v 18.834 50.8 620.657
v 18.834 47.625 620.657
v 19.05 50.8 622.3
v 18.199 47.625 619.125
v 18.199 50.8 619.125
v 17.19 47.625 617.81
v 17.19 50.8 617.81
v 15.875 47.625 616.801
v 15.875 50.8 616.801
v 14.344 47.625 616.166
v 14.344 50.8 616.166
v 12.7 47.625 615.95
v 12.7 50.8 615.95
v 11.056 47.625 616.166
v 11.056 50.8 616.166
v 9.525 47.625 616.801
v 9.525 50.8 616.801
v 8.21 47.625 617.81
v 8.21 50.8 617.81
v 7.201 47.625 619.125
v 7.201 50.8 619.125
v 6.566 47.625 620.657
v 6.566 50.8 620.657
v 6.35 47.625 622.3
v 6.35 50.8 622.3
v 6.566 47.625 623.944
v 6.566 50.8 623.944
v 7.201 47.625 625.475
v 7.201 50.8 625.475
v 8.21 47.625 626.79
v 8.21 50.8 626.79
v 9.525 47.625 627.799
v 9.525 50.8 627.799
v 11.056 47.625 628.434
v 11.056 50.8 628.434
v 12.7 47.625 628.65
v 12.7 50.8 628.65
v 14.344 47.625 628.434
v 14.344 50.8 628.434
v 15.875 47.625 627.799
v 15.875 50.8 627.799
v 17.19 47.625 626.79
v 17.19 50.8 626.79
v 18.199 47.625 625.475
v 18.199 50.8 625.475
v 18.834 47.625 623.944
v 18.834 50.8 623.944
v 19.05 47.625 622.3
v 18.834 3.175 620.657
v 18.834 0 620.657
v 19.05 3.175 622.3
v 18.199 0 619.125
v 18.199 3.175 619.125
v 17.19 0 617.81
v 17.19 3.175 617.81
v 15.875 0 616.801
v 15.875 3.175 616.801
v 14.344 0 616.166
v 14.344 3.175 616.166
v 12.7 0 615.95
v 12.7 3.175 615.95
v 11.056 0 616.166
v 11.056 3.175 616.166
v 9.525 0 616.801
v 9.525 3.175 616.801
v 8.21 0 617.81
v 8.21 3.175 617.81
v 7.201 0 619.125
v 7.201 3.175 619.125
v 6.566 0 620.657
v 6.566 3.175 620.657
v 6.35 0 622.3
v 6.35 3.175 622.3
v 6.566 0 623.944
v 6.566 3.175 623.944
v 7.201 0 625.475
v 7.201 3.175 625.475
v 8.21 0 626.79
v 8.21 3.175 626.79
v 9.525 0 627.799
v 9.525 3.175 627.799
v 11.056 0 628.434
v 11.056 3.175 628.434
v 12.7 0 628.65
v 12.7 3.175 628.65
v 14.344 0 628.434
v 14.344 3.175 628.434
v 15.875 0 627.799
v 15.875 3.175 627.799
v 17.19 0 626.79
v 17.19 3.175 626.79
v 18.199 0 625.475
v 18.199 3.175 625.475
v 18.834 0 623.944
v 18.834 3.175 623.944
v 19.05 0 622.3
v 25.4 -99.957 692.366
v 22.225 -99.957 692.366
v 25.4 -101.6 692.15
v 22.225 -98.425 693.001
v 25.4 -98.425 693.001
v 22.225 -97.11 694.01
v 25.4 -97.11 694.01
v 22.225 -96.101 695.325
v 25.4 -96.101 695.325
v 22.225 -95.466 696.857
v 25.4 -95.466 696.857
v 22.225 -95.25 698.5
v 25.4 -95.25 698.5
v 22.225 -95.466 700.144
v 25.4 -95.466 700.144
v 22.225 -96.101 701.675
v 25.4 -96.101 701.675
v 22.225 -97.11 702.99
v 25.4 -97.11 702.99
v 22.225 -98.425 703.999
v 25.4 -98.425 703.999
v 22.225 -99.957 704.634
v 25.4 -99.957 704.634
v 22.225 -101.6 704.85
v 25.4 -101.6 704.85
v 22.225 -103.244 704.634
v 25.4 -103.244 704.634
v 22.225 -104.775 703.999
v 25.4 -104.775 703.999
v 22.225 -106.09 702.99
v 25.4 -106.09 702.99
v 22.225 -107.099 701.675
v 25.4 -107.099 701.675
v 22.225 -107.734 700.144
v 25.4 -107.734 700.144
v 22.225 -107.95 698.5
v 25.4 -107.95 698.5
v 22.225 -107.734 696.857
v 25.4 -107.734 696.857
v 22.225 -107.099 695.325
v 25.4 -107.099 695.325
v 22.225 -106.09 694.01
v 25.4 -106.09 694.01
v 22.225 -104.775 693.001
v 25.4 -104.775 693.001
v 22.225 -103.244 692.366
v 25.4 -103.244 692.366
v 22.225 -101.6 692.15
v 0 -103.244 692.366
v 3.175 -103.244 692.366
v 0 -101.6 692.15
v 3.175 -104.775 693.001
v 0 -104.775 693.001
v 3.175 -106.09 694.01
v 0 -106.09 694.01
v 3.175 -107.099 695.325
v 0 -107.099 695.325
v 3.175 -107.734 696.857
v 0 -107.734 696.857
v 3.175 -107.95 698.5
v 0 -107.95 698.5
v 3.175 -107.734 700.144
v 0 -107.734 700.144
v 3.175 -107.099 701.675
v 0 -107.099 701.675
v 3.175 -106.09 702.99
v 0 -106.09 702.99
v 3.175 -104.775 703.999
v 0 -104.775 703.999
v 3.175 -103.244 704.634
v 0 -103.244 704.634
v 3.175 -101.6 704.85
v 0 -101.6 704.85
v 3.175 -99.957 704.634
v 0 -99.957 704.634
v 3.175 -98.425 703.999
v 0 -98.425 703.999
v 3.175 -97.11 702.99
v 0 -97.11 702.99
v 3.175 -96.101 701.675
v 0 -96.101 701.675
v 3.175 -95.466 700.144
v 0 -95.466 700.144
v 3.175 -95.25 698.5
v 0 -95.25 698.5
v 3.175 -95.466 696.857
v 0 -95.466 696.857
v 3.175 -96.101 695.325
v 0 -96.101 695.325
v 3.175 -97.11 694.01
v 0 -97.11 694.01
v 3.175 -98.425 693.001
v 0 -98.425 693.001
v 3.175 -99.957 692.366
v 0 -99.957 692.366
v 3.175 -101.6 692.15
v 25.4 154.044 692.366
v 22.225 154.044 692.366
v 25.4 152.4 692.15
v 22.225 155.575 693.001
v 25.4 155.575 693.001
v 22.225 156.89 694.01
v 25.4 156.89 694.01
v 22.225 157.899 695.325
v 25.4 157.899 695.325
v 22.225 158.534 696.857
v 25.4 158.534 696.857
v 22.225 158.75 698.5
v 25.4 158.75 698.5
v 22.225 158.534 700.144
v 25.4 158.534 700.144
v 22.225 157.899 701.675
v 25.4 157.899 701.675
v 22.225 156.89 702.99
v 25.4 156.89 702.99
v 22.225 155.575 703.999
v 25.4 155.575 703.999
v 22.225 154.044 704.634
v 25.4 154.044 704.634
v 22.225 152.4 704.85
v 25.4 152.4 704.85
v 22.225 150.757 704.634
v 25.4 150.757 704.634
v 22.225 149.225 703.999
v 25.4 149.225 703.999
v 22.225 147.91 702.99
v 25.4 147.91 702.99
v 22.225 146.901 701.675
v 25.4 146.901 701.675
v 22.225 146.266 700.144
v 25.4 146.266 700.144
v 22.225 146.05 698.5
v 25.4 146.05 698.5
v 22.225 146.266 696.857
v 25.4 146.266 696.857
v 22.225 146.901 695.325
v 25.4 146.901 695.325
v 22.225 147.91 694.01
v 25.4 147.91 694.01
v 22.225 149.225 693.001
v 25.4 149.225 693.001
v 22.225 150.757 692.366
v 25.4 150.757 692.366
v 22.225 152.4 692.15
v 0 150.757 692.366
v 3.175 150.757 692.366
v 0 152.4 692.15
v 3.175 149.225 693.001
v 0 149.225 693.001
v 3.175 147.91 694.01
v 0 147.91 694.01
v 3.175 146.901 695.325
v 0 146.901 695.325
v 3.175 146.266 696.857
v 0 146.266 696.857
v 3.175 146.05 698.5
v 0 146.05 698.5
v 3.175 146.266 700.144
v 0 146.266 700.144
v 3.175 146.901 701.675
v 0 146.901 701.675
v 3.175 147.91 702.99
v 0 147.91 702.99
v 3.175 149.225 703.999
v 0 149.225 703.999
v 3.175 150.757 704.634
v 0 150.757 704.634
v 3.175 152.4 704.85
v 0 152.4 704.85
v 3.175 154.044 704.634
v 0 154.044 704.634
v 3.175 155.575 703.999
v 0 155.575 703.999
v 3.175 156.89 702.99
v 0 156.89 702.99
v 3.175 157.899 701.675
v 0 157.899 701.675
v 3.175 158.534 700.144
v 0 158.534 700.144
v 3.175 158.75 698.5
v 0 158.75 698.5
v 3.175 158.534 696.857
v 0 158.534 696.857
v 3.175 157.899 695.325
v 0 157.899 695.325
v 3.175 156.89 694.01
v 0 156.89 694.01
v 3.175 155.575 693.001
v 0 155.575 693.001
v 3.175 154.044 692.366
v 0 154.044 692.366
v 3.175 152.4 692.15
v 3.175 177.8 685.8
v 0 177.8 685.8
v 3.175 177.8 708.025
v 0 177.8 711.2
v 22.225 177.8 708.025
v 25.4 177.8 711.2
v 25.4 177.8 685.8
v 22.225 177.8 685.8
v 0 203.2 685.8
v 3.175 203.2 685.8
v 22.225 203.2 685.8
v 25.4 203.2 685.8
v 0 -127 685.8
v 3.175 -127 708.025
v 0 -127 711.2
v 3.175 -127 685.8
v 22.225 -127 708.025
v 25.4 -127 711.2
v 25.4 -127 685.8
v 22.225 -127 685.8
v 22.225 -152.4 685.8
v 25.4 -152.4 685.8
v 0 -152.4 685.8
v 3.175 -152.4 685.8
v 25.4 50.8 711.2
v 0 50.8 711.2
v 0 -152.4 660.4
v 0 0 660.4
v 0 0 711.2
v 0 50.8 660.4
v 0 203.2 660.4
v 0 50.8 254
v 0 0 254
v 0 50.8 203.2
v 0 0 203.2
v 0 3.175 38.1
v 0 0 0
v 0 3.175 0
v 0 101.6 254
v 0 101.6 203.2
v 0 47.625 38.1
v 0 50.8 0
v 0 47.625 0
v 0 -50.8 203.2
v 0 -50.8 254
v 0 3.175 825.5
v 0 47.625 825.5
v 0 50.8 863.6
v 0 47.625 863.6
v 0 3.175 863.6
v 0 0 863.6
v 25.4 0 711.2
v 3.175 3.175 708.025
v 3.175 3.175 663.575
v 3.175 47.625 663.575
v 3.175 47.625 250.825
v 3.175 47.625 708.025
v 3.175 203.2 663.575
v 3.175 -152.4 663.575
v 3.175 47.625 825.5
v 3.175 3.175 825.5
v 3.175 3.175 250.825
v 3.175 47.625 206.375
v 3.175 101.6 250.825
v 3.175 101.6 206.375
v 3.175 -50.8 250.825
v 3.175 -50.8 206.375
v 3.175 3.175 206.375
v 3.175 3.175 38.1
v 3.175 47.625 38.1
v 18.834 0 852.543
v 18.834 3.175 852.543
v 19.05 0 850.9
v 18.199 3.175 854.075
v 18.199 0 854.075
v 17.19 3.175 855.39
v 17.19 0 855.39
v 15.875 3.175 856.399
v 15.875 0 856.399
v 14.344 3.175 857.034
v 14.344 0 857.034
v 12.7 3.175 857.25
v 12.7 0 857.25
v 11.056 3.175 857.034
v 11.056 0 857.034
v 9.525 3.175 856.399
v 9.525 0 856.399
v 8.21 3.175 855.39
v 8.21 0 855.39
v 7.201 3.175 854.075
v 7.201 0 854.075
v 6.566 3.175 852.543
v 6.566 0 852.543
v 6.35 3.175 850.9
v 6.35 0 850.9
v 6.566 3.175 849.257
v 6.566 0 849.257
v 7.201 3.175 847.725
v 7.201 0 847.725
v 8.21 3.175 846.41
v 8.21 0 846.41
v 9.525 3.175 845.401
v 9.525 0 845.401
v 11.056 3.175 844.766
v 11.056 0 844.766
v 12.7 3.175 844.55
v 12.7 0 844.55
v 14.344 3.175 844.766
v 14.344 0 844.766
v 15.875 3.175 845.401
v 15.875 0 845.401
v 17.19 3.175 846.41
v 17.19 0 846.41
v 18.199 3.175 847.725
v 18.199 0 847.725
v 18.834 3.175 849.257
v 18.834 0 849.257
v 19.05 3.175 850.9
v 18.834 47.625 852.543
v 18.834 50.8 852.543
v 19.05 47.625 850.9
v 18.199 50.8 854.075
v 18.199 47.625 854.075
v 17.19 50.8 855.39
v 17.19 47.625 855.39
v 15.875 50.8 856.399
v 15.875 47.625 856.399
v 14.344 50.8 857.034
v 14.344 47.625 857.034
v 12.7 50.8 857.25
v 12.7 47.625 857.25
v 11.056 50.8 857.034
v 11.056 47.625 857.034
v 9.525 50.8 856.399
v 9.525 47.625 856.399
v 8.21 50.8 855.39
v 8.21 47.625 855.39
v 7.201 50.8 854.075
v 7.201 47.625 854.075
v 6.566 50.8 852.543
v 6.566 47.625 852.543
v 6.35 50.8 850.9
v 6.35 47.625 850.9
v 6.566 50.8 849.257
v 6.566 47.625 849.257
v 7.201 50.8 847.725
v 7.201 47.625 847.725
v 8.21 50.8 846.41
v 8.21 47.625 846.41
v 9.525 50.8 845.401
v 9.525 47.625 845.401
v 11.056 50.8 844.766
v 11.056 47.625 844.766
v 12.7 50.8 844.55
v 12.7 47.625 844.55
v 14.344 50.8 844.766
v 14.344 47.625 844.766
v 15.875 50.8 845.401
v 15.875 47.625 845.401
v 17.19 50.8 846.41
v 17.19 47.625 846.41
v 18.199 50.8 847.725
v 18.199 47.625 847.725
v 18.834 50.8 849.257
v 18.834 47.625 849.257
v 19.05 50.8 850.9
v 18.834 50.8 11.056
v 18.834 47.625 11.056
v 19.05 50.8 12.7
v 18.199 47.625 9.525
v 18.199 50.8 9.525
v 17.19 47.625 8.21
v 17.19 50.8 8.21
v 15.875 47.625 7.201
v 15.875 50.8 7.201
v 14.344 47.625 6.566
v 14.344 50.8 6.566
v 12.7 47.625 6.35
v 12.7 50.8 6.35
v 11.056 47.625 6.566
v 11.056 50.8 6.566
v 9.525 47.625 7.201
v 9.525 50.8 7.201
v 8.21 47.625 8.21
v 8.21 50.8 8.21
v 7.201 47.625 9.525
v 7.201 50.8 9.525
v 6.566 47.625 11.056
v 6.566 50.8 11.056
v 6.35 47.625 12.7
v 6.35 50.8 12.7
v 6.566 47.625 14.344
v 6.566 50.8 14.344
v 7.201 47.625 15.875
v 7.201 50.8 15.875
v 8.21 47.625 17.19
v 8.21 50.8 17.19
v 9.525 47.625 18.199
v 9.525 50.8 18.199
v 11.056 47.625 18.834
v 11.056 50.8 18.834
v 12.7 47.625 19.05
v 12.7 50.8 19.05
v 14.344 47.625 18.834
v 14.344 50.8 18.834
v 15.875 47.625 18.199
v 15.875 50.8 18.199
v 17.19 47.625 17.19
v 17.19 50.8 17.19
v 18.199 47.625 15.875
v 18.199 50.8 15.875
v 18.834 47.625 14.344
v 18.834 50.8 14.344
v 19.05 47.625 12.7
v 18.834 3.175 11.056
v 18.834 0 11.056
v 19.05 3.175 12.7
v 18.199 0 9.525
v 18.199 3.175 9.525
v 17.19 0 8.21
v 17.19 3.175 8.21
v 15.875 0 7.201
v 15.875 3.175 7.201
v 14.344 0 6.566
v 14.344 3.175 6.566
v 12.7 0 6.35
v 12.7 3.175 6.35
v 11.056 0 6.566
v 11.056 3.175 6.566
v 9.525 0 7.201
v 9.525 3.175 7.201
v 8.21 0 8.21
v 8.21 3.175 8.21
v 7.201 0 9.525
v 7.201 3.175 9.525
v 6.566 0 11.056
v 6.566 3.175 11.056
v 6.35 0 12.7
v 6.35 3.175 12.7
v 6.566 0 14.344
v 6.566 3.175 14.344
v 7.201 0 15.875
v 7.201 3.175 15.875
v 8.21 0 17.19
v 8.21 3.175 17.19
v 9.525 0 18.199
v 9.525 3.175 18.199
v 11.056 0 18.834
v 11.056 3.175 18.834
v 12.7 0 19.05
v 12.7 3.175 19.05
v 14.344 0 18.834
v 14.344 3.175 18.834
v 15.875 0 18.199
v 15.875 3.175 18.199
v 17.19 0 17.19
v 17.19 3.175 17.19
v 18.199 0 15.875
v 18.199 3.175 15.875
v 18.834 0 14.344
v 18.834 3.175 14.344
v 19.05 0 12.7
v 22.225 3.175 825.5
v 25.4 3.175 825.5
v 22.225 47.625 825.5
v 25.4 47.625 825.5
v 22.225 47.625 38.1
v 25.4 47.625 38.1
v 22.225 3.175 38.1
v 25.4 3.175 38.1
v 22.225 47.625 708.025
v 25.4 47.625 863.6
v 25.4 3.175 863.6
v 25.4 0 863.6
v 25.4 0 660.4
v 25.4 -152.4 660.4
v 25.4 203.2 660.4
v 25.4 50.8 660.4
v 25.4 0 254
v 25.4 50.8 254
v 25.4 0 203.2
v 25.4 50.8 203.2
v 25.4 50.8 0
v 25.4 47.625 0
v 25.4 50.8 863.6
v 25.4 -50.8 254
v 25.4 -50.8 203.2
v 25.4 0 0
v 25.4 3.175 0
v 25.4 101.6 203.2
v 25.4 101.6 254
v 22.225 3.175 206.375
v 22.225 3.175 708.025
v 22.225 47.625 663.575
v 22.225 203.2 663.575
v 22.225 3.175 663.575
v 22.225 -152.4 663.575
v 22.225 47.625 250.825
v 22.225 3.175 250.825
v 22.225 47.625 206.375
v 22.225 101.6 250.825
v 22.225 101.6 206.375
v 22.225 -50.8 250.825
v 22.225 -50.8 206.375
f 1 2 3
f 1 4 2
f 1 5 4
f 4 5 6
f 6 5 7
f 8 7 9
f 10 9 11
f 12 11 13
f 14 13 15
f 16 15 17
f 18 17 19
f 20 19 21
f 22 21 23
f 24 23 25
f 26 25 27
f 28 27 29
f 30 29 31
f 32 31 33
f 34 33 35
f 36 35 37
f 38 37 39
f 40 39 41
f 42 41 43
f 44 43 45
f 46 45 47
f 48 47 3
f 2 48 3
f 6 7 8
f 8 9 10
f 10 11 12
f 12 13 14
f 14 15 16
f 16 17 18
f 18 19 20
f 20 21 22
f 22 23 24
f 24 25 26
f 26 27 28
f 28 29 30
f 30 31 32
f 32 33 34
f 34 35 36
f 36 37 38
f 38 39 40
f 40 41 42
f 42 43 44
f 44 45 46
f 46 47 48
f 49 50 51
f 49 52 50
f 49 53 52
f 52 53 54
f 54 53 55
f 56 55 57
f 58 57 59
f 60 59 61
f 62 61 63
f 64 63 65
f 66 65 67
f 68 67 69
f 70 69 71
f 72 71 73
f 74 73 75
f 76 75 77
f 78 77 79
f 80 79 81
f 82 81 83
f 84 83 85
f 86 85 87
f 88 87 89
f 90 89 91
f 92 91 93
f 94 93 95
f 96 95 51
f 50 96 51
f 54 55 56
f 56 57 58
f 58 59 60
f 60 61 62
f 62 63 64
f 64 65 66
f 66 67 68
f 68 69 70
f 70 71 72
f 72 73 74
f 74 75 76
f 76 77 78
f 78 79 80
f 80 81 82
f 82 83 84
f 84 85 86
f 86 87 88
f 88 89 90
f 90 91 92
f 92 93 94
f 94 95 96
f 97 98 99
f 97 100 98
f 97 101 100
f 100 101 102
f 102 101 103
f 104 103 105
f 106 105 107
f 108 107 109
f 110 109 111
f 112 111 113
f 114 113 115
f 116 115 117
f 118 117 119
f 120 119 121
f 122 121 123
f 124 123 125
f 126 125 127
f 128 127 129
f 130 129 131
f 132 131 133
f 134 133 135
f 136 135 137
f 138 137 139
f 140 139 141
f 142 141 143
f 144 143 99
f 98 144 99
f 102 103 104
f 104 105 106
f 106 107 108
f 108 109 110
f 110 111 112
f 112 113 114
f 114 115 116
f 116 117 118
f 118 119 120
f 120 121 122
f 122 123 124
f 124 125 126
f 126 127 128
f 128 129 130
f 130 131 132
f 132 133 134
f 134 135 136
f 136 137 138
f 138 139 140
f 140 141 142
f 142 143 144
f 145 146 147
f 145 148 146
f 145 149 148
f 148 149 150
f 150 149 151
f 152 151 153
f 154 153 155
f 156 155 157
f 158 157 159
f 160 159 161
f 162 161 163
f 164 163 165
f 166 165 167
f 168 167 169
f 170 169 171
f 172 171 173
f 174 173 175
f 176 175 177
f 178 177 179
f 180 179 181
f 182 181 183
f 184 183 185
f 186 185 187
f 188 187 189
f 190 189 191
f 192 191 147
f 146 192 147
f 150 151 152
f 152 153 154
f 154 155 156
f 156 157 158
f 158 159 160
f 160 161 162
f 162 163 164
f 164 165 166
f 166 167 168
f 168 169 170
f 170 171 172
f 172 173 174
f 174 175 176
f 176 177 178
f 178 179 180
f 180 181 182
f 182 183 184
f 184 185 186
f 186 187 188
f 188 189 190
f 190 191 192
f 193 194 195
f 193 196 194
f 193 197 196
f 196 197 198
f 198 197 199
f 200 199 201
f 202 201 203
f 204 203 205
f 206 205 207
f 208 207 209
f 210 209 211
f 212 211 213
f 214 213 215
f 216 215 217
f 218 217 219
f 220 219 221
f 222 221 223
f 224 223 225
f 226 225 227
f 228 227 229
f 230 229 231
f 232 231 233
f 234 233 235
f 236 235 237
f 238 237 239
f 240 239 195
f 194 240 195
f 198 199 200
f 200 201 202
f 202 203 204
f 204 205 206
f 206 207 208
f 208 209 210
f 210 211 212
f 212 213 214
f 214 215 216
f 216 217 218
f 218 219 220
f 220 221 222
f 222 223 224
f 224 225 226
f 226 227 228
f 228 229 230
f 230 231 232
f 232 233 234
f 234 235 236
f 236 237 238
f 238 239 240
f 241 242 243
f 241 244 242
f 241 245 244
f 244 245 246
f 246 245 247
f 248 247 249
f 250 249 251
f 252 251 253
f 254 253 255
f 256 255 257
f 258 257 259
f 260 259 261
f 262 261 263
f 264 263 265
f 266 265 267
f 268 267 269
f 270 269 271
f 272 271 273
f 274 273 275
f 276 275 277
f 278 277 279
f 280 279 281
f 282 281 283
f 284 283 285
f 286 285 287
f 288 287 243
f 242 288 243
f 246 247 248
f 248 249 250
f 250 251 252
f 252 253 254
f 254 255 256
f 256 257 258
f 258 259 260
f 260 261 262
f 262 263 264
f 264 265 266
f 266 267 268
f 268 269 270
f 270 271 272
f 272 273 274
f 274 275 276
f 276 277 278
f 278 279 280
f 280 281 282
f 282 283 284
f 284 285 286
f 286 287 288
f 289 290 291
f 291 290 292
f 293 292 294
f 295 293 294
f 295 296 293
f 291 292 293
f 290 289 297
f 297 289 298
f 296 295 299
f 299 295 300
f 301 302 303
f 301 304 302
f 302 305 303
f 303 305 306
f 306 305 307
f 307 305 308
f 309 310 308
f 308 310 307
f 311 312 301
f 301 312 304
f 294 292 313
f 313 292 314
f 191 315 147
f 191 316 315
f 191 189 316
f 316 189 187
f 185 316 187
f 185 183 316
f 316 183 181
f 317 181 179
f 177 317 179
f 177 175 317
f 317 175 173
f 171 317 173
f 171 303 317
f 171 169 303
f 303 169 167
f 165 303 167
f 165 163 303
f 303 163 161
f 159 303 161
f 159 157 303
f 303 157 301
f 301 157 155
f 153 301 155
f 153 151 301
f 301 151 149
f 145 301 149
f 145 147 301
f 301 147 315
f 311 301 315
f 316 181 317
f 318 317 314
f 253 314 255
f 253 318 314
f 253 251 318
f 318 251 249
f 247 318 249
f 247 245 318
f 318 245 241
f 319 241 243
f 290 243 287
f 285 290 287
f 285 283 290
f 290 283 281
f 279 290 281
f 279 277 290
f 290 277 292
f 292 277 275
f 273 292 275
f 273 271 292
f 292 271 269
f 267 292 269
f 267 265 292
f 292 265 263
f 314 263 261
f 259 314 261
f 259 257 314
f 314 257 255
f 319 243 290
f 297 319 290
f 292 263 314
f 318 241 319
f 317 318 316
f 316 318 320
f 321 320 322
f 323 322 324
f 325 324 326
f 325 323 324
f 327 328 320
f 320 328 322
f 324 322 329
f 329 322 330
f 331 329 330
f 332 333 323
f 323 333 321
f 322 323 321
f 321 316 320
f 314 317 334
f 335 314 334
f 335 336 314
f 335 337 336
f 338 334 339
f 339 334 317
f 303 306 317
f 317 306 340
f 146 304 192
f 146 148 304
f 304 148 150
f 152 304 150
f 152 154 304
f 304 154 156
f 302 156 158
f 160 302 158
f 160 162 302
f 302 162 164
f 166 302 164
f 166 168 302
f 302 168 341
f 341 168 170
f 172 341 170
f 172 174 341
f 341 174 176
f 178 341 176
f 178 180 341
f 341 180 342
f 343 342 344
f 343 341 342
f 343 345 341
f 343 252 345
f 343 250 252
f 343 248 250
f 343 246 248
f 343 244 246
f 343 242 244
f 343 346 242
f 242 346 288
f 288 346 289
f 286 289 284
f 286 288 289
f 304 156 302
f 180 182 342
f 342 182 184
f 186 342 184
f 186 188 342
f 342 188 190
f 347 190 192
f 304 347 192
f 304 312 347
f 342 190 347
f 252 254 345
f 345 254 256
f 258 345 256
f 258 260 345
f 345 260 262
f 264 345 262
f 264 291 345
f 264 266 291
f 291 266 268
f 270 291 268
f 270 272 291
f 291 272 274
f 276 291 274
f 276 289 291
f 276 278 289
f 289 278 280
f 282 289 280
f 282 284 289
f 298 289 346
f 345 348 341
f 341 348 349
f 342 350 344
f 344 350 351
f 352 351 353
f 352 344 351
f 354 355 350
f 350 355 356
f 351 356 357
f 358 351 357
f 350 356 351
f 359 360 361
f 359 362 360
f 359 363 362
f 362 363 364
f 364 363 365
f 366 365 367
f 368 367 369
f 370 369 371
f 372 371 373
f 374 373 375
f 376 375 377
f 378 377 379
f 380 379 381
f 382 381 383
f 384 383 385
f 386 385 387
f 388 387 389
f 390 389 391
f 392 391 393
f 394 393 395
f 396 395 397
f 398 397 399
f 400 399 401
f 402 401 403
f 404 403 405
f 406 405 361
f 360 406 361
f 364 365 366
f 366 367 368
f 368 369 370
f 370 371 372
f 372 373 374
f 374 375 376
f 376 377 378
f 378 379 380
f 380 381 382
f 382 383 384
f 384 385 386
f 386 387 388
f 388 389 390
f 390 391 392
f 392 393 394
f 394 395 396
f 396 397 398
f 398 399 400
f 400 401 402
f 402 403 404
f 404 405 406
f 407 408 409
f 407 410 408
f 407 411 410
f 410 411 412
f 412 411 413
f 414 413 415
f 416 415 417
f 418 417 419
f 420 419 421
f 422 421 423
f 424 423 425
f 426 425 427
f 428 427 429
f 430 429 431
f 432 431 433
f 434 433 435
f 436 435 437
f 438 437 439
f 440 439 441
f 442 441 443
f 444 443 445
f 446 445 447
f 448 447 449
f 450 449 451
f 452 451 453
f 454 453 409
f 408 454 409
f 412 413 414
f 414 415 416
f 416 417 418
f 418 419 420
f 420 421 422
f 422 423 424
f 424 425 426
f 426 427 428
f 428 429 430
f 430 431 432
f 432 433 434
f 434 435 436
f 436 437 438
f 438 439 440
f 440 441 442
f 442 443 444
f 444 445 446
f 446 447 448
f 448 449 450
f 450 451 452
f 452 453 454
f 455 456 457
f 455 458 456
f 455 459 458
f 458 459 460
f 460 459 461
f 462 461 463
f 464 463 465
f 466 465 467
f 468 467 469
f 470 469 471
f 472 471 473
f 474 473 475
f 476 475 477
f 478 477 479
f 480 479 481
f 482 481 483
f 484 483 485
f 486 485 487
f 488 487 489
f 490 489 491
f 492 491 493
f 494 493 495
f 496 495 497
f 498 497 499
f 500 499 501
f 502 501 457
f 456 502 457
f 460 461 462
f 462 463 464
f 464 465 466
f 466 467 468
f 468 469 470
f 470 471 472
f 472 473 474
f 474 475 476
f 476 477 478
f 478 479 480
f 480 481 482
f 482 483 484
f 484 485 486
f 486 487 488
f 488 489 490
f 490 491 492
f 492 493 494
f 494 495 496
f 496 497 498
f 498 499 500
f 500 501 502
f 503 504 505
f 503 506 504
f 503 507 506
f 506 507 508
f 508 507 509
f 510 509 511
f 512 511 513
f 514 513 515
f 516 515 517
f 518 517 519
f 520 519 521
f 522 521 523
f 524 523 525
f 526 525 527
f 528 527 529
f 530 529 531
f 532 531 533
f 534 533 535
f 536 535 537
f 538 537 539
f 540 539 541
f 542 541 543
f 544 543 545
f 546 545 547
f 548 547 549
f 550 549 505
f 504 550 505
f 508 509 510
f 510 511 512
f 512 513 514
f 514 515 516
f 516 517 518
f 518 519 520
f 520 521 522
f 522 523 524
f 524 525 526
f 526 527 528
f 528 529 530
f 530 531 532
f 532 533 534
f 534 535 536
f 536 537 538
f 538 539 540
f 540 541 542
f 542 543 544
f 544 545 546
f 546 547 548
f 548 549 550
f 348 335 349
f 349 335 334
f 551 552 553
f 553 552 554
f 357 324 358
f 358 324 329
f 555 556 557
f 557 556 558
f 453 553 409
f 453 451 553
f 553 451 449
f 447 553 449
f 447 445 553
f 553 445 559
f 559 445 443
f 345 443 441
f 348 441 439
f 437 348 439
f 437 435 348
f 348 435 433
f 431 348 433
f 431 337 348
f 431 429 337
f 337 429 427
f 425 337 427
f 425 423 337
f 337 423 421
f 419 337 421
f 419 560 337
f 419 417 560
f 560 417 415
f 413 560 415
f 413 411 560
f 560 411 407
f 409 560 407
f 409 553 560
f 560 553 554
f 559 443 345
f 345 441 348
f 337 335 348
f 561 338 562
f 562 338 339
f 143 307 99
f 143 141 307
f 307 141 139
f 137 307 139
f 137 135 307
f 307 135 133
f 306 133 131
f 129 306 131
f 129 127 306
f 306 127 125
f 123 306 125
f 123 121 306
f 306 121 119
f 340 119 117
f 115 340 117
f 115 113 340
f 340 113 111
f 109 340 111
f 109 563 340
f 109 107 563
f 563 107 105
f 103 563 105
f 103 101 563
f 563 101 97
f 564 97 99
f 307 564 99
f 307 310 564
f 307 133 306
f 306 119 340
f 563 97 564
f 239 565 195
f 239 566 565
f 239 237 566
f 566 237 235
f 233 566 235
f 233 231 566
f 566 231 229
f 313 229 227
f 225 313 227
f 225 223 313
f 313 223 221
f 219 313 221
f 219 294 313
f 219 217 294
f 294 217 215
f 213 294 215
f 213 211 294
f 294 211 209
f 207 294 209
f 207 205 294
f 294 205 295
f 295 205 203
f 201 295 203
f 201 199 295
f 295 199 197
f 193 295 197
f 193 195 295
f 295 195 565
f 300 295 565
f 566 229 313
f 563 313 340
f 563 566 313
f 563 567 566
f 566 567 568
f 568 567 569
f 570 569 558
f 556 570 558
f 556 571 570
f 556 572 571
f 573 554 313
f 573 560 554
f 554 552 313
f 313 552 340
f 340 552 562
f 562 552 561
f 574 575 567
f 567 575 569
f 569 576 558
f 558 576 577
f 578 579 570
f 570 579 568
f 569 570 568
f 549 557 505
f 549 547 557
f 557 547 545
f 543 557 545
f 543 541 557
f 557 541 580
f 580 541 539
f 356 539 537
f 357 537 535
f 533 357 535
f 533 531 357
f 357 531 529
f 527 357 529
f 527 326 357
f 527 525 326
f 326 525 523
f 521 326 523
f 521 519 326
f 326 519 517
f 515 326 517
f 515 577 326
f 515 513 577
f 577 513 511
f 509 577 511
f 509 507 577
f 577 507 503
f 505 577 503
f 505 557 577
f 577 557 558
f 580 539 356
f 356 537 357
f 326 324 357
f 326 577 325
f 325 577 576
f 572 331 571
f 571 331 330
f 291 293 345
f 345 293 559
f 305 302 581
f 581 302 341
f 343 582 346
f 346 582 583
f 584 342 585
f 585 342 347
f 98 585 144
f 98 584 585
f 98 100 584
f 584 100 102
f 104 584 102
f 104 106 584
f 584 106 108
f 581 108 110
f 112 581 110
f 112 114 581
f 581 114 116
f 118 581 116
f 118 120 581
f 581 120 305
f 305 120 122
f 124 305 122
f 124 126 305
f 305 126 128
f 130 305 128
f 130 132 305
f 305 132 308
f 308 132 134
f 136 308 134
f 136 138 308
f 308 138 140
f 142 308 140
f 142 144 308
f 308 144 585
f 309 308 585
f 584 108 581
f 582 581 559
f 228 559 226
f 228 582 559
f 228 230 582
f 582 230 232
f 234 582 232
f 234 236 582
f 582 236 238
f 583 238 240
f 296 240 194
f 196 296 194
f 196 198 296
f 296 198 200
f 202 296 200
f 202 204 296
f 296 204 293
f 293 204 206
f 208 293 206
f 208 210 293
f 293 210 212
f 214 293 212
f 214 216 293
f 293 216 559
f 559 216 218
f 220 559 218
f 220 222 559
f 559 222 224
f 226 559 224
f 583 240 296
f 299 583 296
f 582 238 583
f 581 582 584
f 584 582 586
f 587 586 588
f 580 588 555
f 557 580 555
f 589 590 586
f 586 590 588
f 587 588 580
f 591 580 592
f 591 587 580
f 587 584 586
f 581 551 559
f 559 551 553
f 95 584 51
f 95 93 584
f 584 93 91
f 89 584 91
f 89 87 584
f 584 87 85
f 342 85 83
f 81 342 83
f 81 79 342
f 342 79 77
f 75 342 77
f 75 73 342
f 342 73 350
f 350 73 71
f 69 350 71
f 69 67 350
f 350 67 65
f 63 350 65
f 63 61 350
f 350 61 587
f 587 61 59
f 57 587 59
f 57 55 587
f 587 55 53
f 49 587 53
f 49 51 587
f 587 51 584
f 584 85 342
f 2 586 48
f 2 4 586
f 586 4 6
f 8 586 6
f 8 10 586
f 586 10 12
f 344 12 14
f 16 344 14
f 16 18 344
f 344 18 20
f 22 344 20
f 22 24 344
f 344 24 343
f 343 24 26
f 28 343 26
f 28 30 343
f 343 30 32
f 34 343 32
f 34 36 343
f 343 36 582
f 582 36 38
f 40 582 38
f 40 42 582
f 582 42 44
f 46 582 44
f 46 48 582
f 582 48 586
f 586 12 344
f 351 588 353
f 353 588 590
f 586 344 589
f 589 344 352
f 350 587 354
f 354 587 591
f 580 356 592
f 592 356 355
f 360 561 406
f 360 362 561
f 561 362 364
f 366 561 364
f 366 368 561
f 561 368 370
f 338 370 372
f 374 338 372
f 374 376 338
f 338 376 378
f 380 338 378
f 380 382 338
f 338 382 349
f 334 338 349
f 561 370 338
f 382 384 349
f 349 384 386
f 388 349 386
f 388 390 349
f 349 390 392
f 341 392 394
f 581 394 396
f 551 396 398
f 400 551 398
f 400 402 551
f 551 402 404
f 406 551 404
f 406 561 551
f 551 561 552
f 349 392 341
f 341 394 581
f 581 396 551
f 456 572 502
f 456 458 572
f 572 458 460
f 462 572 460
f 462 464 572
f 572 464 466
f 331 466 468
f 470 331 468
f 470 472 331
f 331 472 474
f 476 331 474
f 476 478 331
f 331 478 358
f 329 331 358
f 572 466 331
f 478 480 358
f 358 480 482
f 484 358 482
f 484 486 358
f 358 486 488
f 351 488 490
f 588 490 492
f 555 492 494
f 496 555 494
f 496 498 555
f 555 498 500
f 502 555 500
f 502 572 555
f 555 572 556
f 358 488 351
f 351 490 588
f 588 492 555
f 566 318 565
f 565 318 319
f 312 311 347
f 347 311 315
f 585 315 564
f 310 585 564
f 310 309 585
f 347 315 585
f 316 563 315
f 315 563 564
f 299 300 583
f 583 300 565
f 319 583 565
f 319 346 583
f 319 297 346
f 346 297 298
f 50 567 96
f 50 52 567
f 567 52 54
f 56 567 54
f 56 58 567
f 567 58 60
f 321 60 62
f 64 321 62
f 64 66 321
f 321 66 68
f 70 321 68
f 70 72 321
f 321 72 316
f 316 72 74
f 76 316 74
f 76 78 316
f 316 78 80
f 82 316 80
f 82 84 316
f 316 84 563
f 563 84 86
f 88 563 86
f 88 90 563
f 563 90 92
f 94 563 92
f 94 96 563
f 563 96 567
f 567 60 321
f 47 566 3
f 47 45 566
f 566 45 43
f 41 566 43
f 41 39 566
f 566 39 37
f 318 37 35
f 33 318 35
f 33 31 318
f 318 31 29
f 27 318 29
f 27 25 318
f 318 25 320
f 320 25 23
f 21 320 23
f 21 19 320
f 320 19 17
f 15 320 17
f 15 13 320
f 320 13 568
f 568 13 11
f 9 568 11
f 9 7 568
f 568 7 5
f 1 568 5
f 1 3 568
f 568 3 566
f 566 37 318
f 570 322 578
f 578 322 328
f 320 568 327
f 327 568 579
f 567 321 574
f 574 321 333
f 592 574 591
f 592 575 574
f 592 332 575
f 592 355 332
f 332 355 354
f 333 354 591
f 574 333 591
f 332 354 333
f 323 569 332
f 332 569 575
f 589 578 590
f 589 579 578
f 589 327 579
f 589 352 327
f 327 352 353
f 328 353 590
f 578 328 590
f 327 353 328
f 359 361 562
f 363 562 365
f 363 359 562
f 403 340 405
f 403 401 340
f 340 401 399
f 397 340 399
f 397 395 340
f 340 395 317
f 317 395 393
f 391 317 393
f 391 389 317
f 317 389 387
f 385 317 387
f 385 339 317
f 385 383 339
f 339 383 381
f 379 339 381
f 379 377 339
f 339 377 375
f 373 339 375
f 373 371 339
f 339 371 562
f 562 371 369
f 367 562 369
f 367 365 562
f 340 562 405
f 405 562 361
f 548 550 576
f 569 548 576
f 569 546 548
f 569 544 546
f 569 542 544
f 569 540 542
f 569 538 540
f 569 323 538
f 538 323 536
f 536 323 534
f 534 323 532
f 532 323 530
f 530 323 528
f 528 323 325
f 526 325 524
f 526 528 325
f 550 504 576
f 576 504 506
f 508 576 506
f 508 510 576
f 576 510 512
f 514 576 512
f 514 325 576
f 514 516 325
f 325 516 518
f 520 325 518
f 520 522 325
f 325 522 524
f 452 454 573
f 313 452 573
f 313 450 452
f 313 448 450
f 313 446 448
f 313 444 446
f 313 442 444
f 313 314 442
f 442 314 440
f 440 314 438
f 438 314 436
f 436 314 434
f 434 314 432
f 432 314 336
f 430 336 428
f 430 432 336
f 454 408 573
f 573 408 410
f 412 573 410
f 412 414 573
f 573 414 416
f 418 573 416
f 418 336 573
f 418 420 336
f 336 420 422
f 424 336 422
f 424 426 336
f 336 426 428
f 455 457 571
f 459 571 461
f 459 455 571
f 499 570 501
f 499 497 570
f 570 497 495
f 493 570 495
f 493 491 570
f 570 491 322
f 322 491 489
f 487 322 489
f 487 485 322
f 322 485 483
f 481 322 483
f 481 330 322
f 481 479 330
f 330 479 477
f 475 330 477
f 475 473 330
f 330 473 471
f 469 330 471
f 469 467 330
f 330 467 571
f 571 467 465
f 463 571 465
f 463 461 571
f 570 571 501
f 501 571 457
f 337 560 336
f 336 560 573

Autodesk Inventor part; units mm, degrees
ref_plane "YZ Plane" through (0, 0, 0) normal (1, 0, 0) x (0, 1, 0)
ref_plane "XZ Plane" through (0, 0, 0) normal (0, 1, 0) x (-1, 0, 0)
ref_plane "XY Plane" through (0, 0, 0) normal (0, 0, 1) x (1, 0, 0)
sketch "Sketch1" plane through (0, 0, 0) normal (0, 0, 1) x (1, 0, 0)
  line L0 (0, 0) -> (25.4, 0)
  line L1 (25.4, 0) -> (25.4, 50.8)
  line L2 (25.4, 50.8) -> (0, 50.8)
  line L3 (0, 50.8) -> (0, 0)
  dimension "d0" = 25.4
  dimension "d1" = 50.8
extrude "Extrusion1" add sketch "Sketch1" along normal blind 863.6
sketch "Sketch2" plane through (0, 50.8, 0) normal (0, 1, 0) x (1, 0, 0)
  line L0 (0, -863.6) -> (25.4, -863.6) projected
  line L1 (25.4, 0) -> (25.4, -863.6) projected
  line L2 (0, 0) -> (0, -863.6) projected
  line L3 (0, -203.2) -> (25.4, -203.2)
  line L4 (25.4, -203.2) -> (25.4, -254)
  line L5 (25.4, -254) -> (0, -254)
  line L6 (0, -254) -> (0, -203.2)
  dimension "d5" = 50.8
  dimension "d6" = 609.6
extrude "Extrusion2" add sketch "Sketch2" along normal blind 50.8 and the other way blind 101.6 contours L2 L3 L1 L5
sketch "Sketch4" plane through (0, 50.8, 863.6) normal (0, 1, 0) x (1, 0, 0)
  line L0 (0, 609.6) -> (0, 0) projected
  line L1 (0, 0) -> (25.4, 0) projected
  line L2 (25.4, 609.6) -> (25.4, 0) projected
  line L3 (0, 203.2) -> (25.4, 203.2)
  line L4 (25.4, 203.2) -> (25.4, 152.4)
  line L5 (25.4, 152.4) -> (0, 152.4)
  line L6 (0, 152.4) -> (0, 203.2)
  point P0 (0, 863.6)
  dimension "d14" = 50.8
  dimension "d15" = 152.4
extrude "Extrusion4" add sketch "Sketch4" along normal blind 152.4 and the other way blind 203.2 contours L3 L2 L5 L0
shell "Shell3" thickness 3.175 removed faces 6 at (8.4667, 33.8667, 0) at (8.4667, -50.8, 220.1333) at (8.4667, 101.6, 220.1333) at (16.9333, -152.4, 694.2667) at (8.4667, 33.8667, 863.6) at (16.9333, 203.2, 694.2667)
sketch "Sketch5" plane through (25.4, 0, 0) normal (1, 0, 0) x (0, 0, -1)
  line L0 (-863.6, 50.8) -> (-863.6, 0) projected
  line L1 (0, 0) -> (-203.2, 0) projected
  line L2 (0, 0) -> (0, 50.8) projected
  line L3 (0, 47.625) -> (-38.1, 47.625)
  line L4 (-38.1, 47.625) -> (-38.1, 3.175)
  line L5 (-38.1, 3.175) -> (0, 3.175)
  line L6 (0, 3.175) -> (0, 47.625)
  line L7 (-863.6, 47.625) -> (-825.5, 47.625)
  line L8 (-825.5, 47.625) -> (-825.5, 3.175)
  line L9 (-825.5, 3.175) -> (-863.6, 3.175)
  line L10 (-863.6, 3.175) -> (-863.6, 47.625)
  dimension "d23" = 44.45
  dimension "d24" = 3.175
  dimension "d25" = 38.1
extrude "Extrusion5" cut sketch "Sketch5" against normal through all
sketch "Sketch6" plane through (0, 0, 0) normal (0, -1, 0) x (1, 0, 0)
  line L0 (0, 0) -> (0, 203.2) projected
  line L1 (0, 0) -> (25.4, 0) projected
  circle A0 centre (12.7, 12.7) radius 6.35
  dimension "d28" = 12.7
  dimension "d29" = 12.7
  dimension "d30" = 12.7
extrude "Extrusion6" cut sketch "Sketch6" against normal through all
sketch "Sketch7" plane through (0, 0, 863.6) normal (0, -1, 0) x (1, 0, 0)
  line L0 (25.4, -152.4) -> (25.4, 0) projected
  line L1 (25.4, 0) -> (0, 0) projected
  circle A0 centre (12.7, -12.7) radius 6.35
  point P0 (0, -863.6)
  dimension "d33" = 12.7
  dimension "d34" = 12.7
  dimension "d35" = 12.7
extrude "Extrusion7" cut sketch "Sketch7" against normal through all
sketch "Sketch8" plane through (25.4, -50.8, 254) normal (1, 0, 0) x (0, 0, -1)
  line L0 (-457.2, 254) -> (-431.8, 254)
  line L1 (-431.8, 254) -> (-431.8, 228.6)
  line L2 (-431.8, 228.6) -> (-457.2, 228.6)
  line L3 (-457.2, 228.6) -> (-457.2, 254)
  line L4 (-457.2, -101.6) -> (-431.8, -101.6)
  line L5 (-431.8, -101.6) -> (-431.8, -76.2)
  line L6 (-431.8, -76.2) -> (-457.2, -76.2)
  line L7 (-457.2, -76.2) -> (-457.2, -101.6)
  dimension "d38" = 25.4
  dimension "d39" = 25.4
extrude "Extrusion8" cut sketch "Sketch8" against normal through all
sketch "Sketch9" plane through (25.4, -50.8, 254) normal (1, 0, 0) x (0, 0, -1)
  line L0 (-431.8, 228.6) -> (-457.2, 228.6) projected
  line L1 (-457.2, 101.6) -> (-457.2, 228.6) projected
  line L2 (-457.2, -76.2) -> (-457.2, 50.8) projected
  line L3 (-457.2, -76.2) -> (-431.8, -76.2) projected
  circle A0 centre (-444.5, 203.2) radius 6.35
  circle A1 centre (-444.5, -50.8) radius 6.35
  dimension "d42" = 12.7
  dimension "d43" = 25.4
  dimension "d44" = 12.7
  dimension "d45" = 25.4
  dimension "d46" = 12.7
extrude "Extrusion9" cut sketch "Sketch9" against normal through all
sketch "Sketch10" plane through (0, 50.8, 254) normal (0, 1, 0) x (1, 0, 0)
  line L0 (0, -406.4) -> (25.4, -406.4) projected
  line L1 (25.4, 0) -> (25.4, -406.4) projected
  circle A0 centre (12.7, -368.3) radius 6.35
  point P0 (0, 254)
  dimension "d49" = 12.7
  dimension "d50" = 12.7
  dimension "d51" = 38.1
extrude "Extrusion10" cut sketch "Sketch10" against normal through all
properties part number "Frame_MainStructuralMember" material "Aluminum-6061"
